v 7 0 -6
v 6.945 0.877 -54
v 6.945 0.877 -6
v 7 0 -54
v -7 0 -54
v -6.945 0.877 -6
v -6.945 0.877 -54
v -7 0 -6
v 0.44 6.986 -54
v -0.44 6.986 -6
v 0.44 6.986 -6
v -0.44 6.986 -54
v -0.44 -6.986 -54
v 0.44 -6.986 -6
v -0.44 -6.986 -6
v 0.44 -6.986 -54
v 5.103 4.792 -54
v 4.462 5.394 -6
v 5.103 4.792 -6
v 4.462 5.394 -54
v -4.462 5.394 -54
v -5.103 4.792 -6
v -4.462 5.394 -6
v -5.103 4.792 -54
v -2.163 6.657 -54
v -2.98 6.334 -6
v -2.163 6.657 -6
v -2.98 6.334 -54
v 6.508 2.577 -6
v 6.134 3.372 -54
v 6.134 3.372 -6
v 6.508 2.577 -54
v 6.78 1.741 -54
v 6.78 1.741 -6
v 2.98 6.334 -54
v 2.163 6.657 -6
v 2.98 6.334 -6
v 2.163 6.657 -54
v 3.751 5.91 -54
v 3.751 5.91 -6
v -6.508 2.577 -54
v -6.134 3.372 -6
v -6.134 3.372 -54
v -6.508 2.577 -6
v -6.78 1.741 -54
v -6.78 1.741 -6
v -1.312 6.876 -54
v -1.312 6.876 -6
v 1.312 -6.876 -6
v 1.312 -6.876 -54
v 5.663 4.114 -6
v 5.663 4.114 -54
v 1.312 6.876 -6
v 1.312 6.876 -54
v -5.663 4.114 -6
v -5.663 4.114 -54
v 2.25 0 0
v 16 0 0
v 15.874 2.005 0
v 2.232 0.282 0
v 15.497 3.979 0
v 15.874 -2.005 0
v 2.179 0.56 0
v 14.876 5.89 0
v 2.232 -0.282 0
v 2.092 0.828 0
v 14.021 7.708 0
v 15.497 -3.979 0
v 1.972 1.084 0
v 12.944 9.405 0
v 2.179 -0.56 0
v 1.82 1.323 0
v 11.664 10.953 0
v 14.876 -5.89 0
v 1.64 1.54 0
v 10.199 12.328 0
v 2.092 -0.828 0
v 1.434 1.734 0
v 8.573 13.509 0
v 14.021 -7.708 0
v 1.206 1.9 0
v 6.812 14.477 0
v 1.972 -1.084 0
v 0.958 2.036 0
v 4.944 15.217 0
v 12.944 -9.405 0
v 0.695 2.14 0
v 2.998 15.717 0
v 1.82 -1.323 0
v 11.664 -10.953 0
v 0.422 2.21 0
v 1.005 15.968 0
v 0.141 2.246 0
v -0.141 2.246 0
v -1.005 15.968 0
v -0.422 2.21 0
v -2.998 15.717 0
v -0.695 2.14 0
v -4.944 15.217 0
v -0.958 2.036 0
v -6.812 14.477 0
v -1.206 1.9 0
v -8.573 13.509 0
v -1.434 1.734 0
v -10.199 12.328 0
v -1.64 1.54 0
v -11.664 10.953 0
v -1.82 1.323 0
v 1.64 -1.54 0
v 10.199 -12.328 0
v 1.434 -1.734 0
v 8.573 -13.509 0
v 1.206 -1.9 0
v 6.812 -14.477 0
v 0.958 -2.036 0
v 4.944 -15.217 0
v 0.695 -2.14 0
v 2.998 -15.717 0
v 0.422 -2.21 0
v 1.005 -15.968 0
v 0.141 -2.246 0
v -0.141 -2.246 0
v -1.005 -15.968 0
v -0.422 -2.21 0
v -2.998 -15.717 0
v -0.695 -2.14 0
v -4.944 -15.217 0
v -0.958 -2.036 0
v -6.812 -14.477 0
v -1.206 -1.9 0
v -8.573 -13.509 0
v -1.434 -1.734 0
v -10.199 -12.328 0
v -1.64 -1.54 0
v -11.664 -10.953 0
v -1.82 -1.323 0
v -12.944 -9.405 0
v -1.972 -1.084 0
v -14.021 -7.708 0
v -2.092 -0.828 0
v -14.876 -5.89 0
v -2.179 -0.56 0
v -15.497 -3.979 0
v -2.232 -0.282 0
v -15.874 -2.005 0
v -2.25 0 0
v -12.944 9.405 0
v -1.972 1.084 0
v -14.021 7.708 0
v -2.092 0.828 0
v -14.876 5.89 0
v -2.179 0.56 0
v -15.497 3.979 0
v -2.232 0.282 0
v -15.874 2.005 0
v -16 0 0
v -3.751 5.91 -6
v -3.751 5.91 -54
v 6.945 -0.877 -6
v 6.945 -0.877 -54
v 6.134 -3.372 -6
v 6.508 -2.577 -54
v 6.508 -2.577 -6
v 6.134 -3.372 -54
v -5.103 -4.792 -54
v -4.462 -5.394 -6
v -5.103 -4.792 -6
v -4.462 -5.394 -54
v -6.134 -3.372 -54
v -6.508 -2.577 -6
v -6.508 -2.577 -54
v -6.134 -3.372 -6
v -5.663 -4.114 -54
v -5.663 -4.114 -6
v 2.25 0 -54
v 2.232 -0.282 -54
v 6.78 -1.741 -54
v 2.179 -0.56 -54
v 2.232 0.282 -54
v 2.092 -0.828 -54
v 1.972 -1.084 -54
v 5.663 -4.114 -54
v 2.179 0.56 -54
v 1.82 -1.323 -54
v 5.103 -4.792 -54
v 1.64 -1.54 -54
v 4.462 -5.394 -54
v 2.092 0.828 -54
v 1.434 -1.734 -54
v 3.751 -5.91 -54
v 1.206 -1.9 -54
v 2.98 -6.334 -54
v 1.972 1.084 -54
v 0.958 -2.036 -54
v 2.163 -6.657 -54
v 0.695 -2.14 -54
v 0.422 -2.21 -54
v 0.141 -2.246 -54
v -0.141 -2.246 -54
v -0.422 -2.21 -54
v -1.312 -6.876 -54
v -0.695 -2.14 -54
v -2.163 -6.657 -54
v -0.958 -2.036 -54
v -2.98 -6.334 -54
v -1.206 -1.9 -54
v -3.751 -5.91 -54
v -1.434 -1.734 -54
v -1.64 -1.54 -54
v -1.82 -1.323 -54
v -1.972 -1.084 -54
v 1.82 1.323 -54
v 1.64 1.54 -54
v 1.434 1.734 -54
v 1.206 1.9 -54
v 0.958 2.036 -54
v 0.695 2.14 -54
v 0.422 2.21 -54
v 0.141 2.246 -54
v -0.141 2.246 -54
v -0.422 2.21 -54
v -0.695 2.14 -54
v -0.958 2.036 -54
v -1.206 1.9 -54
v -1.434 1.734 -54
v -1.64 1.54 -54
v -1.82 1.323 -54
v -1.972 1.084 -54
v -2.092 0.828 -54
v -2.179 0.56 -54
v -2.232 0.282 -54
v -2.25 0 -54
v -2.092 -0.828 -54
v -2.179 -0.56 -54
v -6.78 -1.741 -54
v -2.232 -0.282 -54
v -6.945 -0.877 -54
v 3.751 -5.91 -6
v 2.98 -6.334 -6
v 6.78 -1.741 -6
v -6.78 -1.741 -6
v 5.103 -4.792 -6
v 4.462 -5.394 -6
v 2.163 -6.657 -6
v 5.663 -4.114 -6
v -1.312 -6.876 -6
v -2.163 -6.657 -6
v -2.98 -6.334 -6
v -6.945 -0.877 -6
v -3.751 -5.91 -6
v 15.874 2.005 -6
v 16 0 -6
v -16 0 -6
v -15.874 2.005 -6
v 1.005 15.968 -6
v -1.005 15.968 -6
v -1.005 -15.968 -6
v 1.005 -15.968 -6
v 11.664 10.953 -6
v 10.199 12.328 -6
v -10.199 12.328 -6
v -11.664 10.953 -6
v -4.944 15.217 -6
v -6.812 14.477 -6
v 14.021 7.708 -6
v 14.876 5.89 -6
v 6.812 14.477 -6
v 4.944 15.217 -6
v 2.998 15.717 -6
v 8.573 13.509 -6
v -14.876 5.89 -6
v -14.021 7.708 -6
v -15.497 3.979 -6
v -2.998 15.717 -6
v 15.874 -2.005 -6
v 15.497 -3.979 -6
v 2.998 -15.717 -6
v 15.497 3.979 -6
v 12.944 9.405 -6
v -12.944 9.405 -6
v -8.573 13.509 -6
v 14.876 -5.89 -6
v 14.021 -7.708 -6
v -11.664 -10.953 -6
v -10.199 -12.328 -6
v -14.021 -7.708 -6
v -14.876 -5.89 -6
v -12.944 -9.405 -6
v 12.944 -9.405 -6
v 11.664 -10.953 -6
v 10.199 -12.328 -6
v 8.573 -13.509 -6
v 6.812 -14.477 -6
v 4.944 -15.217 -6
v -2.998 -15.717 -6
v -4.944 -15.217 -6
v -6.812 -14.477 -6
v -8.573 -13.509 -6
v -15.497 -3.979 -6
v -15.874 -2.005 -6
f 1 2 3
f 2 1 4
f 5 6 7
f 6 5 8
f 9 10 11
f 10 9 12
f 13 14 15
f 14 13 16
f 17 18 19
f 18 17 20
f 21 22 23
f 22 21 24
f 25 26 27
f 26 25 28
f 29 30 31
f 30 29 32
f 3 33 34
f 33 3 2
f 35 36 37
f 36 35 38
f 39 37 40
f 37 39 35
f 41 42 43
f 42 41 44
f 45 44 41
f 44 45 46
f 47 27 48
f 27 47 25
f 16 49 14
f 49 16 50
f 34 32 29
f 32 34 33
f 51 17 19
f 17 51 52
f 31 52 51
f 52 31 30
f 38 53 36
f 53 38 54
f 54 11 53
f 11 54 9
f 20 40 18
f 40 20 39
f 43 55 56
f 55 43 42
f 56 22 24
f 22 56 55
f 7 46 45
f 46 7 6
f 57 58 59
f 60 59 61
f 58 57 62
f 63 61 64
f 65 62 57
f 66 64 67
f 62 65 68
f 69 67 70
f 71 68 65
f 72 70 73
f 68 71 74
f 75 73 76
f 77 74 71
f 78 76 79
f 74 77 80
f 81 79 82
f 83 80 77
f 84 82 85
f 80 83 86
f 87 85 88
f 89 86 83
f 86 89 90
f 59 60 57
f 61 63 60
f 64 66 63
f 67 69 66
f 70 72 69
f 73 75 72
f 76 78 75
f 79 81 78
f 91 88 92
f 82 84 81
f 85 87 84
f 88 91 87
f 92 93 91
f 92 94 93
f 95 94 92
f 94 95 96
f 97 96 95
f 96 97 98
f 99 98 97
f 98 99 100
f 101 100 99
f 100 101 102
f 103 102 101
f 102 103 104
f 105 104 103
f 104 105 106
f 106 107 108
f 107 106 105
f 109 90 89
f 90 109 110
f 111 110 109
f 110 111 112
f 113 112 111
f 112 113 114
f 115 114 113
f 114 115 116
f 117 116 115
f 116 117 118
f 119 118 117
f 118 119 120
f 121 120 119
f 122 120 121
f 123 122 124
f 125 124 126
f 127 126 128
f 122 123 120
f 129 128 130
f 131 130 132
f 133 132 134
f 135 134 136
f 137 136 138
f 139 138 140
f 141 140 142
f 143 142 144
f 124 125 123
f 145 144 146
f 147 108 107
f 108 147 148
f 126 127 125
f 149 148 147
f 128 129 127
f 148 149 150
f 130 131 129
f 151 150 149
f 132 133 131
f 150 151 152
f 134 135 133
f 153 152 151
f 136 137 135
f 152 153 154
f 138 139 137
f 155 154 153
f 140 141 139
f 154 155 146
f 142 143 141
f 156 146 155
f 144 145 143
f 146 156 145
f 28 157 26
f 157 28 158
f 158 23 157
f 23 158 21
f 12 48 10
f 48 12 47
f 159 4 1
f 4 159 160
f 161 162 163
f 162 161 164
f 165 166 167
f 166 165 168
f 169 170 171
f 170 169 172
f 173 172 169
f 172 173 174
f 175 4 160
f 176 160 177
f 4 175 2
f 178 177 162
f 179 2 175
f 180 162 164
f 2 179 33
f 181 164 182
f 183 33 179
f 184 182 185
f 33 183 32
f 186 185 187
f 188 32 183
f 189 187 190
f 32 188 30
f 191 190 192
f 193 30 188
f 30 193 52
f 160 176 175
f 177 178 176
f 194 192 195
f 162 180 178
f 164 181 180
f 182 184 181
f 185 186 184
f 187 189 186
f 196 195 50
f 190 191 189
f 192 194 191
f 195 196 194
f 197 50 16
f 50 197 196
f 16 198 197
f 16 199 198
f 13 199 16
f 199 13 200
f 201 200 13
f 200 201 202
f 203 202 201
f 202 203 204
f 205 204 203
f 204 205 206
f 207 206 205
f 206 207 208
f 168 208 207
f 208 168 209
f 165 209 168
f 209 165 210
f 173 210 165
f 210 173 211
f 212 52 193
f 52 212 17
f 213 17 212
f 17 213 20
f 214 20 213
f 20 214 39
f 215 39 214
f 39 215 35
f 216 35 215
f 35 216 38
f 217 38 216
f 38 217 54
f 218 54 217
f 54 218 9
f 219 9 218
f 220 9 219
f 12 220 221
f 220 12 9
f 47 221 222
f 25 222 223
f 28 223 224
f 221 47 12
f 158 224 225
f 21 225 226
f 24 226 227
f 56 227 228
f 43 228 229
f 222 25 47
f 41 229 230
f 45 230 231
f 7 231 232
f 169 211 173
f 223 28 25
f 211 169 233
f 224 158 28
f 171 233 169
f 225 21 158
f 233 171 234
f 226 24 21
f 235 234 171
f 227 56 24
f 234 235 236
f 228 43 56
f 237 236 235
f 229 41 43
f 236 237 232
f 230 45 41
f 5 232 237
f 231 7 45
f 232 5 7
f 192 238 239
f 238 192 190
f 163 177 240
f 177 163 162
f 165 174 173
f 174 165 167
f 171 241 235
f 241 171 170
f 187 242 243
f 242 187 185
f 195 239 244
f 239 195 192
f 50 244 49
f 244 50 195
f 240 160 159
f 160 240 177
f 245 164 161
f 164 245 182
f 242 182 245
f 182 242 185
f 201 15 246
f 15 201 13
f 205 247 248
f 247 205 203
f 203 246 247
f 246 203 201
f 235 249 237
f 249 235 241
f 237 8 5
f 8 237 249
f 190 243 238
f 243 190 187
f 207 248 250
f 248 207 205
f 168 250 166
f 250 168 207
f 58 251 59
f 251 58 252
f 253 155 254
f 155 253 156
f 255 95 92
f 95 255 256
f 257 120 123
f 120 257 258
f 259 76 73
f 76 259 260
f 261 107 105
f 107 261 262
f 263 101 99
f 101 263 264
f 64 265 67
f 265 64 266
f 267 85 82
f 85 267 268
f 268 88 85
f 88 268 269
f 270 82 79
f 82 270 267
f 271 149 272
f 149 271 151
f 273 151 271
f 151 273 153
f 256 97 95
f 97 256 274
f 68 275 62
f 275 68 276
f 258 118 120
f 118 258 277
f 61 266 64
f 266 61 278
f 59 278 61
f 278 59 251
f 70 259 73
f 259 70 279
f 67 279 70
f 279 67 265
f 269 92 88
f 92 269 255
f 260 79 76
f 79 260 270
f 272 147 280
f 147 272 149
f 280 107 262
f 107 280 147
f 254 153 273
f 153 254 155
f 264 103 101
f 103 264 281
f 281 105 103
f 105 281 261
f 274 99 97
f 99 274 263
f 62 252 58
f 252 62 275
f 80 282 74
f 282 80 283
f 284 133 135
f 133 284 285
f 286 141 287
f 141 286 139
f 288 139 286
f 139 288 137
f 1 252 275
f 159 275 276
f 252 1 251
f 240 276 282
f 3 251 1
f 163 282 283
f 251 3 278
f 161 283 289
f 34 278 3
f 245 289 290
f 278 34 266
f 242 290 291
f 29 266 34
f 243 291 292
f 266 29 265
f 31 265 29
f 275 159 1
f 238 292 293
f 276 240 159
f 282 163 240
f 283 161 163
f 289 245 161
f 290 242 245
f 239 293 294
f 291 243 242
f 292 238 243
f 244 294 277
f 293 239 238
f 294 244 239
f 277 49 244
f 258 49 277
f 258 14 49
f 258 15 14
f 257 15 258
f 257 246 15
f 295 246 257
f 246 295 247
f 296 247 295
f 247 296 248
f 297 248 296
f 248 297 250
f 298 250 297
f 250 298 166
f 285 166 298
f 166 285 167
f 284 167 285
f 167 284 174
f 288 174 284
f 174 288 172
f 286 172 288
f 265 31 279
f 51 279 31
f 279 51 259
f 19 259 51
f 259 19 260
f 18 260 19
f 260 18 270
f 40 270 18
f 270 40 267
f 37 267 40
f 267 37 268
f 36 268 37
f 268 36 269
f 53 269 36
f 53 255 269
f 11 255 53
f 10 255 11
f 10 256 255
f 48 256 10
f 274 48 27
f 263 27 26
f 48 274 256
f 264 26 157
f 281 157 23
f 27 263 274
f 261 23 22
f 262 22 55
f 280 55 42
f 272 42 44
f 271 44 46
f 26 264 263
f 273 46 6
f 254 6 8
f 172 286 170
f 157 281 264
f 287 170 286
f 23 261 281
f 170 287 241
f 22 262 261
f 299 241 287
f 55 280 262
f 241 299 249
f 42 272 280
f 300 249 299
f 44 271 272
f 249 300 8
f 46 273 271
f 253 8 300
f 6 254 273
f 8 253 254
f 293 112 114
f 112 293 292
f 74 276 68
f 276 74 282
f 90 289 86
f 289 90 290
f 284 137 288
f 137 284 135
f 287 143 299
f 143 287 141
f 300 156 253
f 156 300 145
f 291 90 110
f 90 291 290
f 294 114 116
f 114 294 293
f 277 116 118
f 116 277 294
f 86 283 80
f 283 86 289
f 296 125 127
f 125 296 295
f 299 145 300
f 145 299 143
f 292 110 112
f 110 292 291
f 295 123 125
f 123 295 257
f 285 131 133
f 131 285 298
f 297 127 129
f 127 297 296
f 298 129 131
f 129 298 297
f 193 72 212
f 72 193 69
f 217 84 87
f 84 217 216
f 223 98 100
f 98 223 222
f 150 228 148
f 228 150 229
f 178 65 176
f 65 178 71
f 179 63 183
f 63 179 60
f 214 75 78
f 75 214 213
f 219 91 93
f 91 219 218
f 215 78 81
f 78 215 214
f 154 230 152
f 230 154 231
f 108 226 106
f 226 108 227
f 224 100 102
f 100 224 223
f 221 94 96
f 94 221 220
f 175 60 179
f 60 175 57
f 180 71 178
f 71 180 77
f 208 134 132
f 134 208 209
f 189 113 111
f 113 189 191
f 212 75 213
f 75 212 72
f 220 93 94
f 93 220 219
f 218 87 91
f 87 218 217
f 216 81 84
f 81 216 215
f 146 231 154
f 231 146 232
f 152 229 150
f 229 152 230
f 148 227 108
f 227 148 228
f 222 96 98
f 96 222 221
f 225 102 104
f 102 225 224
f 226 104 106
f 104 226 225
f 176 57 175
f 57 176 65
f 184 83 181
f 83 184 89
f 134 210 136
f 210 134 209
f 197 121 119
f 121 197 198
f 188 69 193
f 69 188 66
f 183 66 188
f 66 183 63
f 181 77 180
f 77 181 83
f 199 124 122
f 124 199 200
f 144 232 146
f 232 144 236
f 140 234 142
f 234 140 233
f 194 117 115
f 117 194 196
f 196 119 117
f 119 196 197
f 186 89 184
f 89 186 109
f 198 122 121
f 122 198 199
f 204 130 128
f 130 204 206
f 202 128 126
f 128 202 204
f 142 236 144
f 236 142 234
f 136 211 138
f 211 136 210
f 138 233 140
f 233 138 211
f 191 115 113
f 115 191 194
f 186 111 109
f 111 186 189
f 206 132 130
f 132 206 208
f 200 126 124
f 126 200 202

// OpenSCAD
$fn = 50;


difference() {
	union() {
		translate(v = [0, 0, -54.0000000000]) {
			cylinder(h = 54, r = 7.0000000000);
		}
		translate(v = [0, 0, -6.0000000000]) {
			cylinder(h = 6, r = 16.0000000000);
		}
	}
	union() {
		#translate(v = [0, 0, -54]) {
			cylinder(h = 54, r = 2.2500000000);
		}
	}
}
